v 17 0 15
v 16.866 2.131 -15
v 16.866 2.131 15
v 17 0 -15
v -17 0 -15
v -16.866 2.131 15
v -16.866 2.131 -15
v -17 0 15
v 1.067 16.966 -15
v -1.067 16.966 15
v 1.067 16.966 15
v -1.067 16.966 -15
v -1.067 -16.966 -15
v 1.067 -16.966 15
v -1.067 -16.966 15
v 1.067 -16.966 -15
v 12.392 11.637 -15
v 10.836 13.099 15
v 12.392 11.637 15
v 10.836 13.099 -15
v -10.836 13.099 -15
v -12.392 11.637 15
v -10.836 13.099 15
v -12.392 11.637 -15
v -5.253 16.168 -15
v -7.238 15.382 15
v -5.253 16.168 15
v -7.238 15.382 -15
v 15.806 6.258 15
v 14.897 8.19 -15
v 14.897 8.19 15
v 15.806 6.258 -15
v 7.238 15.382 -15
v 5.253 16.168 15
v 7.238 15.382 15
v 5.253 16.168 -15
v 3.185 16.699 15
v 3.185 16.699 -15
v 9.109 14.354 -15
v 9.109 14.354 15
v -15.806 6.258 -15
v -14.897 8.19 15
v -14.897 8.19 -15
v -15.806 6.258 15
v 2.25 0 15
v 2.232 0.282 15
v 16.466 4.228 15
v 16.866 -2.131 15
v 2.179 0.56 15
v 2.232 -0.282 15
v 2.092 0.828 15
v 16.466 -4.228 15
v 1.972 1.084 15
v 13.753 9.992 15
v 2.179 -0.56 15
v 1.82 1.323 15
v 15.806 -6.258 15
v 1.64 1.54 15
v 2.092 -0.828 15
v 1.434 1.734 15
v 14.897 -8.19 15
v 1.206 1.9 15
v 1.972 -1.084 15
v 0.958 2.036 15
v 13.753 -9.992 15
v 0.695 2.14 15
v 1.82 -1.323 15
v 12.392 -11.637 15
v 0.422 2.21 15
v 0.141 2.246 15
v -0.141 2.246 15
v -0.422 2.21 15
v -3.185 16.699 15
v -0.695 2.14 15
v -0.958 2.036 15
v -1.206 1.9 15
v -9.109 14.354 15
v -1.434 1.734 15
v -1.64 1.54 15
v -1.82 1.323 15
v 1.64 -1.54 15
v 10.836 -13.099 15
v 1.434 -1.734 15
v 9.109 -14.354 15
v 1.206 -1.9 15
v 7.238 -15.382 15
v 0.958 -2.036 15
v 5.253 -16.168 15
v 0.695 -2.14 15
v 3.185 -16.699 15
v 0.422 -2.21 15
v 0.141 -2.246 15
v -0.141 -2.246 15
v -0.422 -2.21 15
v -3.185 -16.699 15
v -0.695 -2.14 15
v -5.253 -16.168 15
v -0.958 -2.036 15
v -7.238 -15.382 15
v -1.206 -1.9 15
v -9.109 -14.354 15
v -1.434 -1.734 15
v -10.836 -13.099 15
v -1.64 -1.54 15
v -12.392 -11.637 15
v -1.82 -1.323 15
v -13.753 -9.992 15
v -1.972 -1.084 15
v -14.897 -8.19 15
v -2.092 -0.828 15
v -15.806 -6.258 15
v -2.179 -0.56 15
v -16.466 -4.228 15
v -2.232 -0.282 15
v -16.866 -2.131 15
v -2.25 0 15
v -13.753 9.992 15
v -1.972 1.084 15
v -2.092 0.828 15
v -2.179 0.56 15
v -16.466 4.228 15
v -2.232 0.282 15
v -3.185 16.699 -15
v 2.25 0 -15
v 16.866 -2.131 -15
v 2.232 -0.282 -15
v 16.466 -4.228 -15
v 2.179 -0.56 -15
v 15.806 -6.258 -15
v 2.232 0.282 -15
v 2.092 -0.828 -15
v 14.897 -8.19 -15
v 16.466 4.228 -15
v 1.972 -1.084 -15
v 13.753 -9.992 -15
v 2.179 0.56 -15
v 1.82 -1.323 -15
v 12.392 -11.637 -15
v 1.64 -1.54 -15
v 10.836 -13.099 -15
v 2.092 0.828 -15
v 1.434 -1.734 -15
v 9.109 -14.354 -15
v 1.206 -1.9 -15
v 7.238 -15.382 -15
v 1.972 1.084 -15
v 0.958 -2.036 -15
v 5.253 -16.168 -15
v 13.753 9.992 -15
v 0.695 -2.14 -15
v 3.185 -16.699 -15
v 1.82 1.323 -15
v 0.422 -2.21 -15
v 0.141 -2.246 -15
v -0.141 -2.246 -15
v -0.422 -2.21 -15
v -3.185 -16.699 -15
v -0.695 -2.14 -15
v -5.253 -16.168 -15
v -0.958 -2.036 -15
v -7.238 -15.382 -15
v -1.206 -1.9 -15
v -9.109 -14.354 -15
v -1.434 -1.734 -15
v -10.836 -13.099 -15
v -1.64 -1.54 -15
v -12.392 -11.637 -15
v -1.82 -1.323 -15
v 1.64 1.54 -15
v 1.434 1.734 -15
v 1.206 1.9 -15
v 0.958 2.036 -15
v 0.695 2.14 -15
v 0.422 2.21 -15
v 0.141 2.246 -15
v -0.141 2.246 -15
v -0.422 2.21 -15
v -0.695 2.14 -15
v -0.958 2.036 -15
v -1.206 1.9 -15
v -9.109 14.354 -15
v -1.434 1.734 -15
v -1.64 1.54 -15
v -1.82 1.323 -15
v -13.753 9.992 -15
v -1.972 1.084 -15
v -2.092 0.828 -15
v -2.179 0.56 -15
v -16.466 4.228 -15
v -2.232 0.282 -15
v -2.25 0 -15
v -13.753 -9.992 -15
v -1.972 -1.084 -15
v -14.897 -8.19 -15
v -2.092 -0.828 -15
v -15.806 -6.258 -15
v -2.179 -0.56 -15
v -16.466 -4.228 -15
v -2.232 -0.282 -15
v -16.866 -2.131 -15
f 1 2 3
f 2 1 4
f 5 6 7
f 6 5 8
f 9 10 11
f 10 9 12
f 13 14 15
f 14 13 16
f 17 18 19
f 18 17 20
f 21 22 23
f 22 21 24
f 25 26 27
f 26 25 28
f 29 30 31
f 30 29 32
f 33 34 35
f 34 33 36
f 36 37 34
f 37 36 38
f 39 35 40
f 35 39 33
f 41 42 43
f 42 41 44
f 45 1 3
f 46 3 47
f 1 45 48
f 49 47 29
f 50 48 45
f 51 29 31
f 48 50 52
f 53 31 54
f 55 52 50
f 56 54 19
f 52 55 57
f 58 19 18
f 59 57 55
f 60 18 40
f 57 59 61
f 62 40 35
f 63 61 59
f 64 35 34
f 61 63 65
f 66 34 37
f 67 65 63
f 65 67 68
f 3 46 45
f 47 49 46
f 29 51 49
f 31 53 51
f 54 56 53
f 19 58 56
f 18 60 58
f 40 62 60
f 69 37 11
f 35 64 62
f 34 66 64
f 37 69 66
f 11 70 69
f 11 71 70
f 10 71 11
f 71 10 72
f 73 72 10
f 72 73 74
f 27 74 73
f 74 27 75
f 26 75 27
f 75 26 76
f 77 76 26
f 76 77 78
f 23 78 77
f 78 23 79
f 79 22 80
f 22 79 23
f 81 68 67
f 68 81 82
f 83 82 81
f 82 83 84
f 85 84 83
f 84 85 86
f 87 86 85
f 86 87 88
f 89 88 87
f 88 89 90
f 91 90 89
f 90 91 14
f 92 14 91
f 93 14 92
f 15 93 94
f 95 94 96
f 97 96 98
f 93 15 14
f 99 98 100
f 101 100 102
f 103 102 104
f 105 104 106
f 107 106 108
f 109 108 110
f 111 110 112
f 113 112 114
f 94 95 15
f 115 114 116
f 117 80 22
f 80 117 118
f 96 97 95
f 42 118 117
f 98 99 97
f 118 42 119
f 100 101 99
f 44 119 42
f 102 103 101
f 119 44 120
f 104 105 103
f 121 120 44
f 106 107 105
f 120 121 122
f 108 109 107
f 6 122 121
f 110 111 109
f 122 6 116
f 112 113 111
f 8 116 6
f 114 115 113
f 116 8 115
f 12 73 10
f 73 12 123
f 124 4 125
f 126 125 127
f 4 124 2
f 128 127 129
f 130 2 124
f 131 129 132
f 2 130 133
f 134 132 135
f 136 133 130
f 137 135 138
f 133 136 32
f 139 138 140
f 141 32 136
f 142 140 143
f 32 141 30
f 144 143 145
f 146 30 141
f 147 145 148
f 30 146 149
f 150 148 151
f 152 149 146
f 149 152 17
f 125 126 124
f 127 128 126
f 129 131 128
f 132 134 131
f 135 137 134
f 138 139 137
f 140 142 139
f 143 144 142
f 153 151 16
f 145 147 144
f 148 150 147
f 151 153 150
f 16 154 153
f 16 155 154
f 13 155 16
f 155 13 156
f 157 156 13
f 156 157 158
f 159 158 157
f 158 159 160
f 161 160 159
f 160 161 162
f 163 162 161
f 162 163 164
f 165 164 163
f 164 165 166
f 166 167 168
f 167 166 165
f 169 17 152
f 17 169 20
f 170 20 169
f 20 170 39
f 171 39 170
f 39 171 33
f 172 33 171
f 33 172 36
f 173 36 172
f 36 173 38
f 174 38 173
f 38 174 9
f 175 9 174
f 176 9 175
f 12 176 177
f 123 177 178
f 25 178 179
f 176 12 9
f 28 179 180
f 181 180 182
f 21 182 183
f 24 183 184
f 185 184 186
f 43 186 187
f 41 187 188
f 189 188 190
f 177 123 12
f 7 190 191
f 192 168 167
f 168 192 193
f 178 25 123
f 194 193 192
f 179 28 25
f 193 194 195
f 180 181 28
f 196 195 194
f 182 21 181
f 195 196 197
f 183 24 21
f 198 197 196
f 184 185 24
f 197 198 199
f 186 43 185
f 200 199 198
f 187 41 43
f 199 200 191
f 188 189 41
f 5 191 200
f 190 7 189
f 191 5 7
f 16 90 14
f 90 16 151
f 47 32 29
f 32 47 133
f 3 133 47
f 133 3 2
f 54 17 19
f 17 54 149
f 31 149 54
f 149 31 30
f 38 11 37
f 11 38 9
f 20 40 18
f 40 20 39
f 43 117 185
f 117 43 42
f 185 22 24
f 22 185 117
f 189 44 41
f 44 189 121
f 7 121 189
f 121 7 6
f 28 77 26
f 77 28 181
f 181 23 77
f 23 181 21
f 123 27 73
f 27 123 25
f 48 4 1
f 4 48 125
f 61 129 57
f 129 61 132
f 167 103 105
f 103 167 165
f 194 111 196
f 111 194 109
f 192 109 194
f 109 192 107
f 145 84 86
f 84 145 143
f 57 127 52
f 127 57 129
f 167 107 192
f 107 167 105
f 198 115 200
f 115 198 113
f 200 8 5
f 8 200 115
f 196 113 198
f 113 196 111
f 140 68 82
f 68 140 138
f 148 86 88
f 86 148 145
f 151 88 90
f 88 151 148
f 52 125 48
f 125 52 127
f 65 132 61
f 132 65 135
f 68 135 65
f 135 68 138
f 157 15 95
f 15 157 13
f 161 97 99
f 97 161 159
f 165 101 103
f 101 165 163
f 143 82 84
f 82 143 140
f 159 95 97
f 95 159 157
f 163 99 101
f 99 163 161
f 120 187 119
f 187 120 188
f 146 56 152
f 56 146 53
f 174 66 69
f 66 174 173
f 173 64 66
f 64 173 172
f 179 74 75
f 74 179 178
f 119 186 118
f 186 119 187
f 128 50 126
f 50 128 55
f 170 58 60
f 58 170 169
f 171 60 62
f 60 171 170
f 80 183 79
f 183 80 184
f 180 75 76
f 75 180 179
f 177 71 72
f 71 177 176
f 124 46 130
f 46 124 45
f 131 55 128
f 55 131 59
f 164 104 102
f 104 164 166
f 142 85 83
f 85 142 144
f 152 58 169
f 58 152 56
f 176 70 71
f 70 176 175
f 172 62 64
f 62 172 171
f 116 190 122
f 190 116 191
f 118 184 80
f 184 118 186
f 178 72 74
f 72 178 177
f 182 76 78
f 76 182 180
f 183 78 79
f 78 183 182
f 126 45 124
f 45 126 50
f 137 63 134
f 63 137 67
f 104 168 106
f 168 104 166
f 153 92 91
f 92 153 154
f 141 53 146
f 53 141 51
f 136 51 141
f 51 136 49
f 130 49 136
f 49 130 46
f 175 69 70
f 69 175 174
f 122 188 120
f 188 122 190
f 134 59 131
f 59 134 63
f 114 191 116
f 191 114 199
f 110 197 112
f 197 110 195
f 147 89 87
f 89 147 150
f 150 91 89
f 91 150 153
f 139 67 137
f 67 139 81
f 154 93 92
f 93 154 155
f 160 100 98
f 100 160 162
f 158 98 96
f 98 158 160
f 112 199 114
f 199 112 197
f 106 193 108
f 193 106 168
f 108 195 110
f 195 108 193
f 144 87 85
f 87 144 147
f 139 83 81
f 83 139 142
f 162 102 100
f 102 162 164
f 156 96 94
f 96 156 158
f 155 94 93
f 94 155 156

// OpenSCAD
$fn = 50;


difference() {
	union() {
		translate(v = [0, 0, -15.0000000000]) {
			cylinder(h = 30, r = 17.0000000000);
		}
	}
	union() {
		translate(v = [0, 0, -100.0000000000]) {
			cylinder(h = 200, r = 2.2500000000);
		}
	}
}
